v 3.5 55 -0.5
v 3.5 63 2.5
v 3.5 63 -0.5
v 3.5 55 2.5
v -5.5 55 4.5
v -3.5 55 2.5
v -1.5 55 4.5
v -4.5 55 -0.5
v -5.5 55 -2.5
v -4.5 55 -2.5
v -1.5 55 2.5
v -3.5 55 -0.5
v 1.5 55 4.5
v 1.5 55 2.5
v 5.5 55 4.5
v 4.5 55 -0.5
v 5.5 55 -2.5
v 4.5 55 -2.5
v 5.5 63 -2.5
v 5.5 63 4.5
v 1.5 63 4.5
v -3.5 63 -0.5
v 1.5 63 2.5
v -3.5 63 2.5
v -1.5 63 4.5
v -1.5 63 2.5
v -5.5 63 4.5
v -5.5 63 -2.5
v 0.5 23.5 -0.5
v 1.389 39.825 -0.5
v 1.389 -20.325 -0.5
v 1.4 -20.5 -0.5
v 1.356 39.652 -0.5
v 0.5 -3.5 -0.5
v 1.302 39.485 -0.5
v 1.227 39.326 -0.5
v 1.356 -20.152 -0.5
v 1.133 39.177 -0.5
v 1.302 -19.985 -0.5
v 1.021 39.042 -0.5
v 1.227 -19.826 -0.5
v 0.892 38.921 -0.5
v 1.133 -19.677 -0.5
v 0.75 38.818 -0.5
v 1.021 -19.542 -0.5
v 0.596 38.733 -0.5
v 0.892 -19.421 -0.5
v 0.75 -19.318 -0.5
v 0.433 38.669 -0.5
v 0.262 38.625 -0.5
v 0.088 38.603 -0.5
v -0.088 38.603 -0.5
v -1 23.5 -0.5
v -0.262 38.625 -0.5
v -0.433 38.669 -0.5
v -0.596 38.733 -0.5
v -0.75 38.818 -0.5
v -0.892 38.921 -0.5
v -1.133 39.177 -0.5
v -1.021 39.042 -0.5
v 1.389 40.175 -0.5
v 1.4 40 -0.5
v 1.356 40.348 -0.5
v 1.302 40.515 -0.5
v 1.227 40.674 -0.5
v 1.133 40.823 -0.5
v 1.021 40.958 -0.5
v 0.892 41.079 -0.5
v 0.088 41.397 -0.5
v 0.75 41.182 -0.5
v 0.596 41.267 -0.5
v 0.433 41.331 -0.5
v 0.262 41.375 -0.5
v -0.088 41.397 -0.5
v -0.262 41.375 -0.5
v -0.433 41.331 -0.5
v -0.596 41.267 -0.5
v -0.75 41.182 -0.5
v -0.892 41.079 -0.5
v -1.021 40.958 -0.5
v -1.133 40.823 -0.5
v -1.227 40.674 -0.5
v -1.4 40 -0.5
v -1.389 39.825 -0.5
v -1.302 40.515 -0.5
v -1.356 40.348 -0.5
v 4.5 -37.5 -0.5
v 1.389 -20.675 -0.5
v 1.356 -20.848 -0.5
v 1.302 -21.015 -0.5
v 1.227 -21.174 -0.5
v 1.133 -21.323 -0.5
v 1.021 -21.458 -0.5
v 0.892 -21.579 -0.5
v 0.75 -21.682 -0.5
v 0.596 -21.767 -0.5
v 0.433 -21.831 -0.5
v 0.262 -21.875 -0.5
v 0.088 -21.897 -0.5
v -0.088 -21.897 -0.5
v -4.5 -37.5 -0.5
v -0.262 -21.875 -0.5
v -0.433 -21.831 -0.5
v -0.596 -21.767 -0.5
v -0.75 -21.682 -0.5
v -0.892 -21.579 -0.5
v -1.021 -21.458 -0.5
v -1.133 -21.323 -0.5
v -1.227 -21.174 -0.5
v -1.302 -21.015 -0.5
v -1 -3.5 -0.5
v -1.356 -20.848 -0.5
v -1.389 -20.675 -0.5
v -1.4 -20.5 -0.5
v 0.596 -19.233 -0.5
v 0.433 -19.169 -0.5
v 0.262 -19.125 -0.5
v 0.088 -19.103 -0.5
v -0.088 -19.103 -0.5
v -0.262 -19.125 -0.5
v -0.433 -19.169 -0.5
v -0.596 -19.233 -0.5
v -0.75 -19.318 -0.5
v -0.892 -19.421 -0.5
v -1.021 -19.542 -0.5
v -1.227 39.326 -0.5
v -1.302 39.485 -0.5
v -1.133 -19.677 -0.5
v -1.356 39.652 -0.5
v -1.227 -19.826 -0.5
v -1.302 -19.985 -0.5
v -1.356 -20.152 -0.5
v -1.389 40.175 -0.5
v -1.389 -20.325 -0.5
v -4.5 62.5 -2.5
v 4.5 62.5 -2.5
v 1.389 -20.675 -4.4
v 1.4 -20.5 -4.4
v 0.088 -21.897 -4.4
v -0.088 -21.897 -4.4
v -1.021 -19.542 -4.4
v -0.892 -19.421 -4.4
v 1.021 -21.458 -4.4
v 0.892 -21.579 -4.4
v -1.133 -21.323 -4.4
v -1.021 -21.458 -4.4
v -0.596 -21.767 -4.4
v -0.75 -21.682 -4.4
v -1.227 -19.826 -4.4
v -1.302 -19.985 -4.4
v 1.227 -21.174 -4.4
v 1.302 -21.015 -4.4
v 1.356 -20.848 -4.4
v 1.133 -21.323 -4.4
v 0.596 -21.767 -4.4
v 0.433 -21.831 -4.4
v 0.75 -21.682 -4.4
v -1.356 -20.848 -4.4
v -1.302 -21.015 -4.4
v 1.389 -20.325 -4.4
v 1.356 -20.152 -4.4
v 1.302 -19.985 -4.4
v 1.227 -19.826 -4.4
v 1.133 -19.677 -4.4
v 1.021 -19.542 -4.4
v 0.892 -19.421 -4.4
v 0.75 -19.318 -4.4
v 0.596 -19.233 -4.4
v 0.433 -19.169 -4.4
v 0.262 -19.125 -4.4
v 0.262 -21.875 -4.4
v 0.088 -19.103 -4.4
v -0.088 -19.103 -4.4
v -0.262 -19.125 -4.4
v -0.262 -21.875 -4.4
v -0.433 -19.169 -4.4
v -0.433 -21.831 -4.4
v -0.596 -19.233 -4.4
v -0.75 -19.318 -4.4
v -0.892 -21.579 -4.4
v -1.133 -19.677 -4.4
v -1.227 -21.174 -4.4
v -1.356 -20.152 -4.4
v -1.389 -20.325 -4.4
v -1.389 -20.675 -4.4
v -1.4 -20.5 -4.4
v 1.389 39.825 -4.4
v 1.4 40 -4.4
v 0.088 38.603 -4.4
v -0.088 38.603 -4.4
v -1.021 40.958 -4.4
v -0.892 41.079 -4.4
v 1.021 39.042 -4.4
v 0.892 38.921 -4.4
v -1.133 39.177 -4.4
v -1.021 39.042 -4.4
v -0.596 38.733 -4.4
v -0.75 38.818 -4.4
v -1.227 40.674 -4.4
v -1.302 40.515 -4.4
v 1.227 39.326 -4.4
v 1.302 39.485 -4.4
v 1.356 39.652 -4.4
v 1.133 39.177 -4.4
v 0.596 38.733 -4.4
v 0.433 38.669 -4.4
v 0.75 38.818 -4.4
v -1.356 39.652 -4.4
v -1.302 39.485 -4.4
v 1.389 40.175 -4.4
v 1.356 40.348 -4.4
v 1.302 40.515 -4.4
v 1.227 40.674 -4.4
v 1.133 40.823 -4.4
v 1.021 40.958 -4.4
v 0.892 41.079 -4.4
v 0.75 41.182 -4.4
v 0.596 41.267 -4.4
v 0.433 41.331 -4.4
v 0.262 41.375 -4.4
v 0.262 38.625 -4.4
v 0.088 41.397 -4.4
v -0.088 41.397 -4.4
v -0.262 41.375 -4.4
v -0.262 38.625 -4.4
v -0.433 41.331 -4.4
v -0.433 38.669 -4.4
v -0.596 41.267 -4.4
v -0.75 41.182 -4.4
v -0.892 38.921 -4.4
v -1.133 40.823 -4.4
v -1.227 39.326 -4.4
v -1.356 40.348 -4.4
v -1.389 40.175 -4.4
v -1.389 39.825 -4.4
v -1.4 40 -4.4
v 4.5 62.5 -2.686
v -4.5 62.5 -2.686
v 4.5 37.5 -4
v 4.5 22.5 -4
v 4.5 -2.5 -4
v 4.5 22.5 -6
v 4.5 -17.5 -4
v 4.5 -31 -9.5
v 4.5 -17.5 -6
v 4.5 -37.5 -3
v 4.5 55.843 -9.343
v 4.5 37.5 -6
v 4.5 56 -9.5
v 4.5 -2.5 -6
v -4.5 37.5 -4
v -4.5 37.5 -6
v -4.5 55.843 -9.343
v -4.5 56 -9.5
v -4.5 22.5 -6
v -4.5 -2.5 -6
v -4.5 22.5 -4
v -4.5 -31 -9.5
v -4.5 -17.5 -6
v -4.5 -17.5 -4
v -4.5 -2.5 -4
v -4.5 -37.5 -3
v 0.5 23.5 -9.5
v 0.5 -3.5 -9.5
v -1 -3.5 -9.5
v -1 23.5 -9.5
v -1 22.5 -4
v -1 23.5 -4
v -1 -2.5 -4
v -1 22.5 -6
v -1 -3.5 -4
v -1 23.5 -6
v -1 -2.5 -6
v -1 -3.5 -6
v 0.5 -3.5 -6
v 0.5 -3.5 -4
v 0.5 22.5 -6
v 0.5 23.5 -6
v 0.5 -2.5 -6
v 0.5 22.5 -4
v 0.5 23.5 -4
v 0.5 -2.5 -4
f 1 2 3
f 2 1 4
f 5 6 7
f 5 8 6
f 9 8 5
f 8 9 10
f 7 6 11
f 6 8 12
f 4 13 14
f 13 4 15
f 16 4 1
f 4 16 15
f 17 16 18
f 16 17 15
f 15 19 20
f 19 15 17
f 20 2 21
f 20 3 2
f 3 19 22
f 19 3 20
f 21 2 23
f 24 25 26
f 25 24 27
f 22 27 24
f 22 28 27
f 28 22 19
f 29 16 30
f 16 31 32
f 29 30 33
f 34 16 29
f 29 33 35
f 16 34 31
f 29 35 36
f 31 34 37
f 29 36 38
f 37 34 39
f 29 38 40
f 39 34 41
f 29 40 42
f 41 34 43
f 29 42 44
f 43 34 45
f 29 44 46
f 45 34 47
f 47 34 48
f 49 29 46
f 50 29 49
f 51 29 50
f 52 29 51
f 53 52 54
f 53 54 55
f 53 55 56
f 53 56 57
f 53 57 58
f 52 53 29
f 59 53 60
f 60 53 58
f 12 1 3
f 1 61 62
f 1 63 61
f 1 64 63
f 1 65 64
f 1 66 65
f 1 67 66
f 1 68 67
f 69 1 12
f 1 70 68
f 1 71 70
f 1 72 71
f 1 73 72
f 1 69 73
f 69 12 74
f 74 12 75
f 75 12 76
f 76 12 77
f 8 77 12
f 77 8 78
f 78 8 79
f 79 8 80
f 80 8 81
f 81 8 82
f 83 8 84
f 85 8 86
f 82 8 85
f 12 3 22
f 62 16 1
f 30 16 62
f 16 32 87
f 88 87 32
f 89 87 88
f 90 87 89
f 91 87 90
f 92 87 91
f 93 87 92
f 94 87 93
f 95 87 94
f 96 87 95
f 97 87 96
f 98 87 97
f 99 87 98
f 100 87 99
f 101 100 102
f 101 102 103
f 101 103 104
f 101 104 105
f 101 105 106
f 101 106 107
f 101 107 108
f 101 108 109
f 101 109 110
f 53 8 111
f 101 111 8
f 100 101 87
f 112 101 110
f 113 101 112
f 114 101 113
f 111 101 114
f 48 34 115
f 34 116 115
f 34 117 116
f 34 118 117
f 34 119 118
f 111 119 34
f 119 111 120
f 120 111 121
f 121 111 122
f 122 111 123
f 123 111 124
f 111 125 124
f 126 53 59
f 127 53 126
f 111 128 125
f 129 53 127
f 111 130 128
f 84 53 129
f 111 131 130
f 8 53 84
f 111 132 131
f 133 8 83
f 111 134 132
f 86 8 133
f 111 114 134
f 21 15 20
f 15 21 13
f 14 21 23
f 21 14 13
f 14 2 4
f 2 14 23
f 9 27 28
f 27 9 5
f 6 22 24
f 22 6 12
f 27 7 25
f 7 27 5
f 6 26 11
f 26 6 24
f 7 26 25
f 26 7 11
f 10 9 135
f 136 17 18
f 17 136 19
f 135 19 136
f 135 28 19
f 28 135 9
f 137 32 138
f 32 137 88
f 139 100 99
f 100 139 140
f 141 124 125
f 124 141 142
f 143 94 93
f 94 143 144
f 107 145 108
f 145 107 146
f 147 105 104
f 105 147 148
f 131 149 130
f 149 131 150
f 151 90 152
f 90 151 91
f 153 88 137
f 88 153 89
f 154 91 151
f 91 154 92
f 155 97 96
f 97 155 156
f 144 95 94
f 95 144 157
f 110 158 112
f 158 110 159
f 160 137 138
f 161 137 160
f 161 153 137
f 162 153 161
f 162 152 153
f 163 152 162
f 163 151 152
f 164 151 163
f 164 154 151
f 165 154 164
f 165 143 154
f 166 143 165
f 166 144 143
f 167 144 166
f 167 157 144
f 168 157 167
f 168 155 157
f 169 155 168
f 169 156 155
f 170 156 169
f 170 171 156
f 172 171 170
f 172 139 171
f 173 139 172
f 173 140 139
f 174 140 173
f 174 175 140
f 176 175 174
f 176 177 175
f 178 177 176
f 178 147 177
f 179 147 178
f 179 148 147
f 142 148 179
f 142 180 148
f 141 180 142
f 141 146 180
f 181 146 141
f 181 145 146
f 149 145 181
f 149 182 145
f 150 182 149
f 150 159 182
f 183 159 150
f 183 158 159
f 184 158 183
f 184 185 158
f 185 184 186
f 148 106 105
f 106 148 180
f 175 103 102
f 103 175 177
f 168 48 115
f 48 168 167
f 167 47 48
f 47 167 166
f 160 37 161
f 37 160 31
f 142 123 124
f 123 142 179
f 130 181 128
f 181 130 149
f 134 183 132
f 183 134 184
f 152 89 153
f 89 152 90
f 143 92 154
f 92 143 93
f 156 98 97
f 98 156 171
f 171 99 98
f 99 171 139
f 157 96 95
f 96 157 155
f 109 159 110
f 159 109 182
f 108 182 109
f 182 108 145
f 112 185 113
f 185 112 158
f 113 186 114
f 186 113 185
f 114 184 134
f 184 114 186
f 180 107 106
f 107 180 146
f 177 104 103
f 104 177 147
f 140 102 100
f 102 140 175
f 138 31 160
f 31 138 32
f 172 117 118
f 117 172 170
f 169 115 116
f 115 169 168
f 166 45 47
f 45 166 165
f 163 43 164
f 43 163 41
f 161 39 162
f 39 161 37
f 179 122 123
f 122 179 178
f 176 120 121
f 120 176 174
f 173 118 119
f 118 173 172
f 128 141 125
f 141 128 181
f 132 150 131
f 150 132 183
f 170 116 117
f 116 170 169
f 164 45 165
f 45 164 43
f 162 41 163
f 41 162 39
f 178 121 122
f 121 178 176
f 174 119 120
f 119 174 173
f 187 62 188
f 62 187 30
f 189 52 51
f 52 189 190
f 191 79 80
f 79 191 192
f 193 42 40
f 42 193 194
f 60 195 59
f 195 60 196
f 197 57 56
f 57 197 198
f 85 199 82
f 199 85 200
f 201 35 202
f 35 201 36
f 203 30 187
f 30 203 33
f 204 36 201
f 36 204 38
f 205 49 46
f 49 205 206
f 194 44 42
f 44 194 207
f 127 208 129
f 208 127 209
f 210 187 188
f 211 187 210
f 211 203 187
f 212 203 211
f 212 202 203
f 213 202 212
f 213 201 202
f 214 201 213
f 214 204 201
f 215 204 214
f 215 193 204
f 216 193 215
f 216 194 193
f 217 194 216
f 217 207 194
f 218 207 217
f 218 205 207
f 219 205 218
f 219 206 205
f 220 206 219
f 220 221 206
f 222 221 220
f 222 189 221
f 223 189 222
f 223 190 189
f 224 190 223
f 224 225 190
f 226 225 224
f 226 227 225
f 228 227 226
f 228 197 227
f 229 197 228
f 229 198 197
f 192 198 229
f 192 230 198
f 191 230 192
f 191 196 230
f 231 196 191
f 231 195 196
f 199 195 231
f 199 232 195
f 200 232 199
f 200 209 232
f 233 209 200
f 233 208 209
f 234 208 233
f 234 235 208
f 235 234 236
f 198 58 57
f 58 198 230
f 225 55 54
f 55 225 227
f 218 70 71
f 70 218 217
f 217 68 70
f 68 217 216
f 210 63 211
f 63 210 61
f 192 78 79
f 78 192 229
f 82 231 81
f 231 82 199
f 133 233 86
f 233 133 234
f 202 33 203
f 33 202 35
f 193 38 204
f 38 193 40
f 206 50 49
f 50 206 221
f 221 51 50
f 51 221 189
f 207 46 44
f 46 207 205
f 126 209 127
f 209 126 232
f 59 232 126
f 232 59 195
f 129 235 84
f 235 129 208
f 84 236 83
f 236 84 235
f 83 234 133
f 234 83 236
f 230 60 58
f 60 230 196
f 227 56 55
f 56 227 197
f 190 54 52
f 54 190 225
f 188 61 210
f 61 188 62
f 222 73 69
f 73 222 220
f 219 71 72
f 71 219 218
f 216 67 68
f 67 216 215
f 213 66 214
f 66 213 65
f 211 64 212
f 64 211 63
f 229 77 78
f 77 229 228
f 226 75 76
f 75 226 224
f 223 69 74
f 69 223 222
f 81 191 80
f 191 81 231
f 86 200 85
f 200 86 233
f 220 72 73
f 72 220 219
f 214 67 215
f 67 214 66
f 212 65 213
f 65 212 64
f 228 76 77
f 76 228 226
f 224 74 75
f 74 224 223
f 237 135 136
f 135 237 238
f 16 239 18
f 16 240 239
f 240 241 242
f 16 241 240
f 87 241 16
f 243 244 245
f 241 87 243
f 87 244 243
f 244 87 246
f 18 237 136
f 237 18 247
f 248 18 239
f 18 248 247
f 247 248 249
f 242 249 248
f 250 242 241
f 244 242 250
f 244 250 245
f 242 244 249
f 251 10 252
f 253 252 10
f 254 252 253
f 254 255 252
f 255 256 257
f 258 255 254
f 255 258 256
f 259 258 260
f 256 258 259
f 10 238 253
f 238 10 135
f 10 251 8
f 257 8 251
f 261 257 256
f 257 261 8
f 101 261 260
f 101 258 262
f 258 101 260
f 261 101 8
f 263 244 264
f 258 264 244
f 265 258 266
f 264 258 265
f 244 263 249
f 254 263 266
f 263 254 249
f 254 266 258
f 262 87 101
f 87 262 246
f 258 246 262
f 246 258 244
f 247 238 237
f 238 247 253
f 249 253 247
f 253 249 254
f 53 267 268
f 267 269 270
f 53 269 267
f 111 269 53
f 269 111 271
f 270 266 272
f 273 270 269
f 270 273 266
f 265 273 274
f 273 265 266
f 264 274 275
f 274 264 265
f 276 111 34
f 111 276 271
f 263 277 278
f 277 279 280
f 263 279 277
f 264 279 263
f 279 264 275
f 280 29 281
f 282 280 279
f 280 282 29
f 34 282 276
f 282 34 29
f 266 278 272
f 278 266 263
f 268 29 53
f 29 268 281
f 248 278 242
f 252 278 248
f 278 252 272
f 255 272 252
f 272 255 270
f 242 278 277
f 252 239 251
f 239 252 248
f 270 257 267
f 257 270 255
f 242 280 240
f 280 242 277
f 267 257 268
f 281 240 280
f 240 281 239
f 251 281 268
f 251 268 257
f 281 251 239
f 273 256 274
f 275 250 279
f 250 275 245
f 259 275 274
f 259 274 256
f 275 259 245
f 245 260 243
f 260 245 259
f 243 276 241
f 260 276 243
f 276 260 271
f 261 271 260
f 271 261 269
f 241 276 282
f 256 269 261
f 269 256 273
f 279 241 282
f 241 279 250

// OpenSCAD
$fn=50;
BOX_W = 38; // Box Width
BOX_L = 100;// Box Length
BOX_H = 1.0; // Box Height
//SCREW_SIZE = .5; // Screw size in mm
CORNER_RADIUS = 1.0; // Radius of corners
WALL = 1.0;// Wall Thickness

KEEL_WIDTH=9.0;
KEEL_HEIGHT=9.0;
KEEL_LENGTH=100;

VENT_OFFSET = 2.5;
VENT_L = 16.5;
VENT_R = -18.5;
 
difference() {
    union() {
        // keel
        translate([0,62.5,-5])
        rotate([90,0,0])
        difference() {
            linear_extrude(KEEL_LENGTH) square([KEEL_WIDTH, KEEL_HEIGHT], center=true); 
            // front of keel slope
            translate([-5, -5, 93])
            rotate([45, 0, 0])
            cube([10, 11, 8]);  
            
            // back of keel slope
            translate([-5, -10, 1])
            rotate([-45, 0, 0])
            cube([10, 11, 8]); 
            
            //center cutout - vent
            // y, z, x
            translate([-1.0,-6, 39.0])
            rotate([0,0,0])
            //y, z, x
            #cube([1.5, 12, 27]);
            
            // screw holes
            rotate([90,0,0])
            union() {
                // x,y,z
                //translate([0.0, KEEL_LENGTH-35.0, -4.6]) #cylinder(h=4, d=2.8); 
                translate([0.0, KEEL_LENGTH-17.0, -4.6]) cylinder(h=4, d=2.8); 
                translate([0.0, KEEL_LENGTH-77.5, -4.6]) cylinder(h=4, d=2.8);   
            }
            // thru slots for straps
            rotate([90, 0, 0])
            translate([-7.0, 25,-1]) 
            cube([14, 15, 2]);
            rotate([90, 0, 0])
            translate([-7.0, 65,-1]) 
            cube([14, 15, 2]);
            /*
            // convex bottom
            // (x,z,y
            translate([0,-16.4,4]) 
            #cylinder(h=92, d=25);
            */
        }
        // Inverted L-shaped C-clamp
        difference() {
            translate([KEEL_WIDTH/2-3, KEEL_LENGTH-18, -0.5])
            rotate([90, 0, 0])
            union() {
                // Vertical arm of the C-clamp 2
                translate([2.0, 0, 19]) cube([2, 5, 8]);
                // Horizontal arm of the C-clamp
                rotate([90, 0, 0])
                translate([0, 19, -5]) cube([2, 8, 2]);
                // Vertical arm of the C-clamp 1
                translate([-7, 0, 19]) cube([2, 5, 8]);
                // Horizontal arm of the C-clamp
                rotate([90, 0, 0])
                translate([-5.0, 19,-5]) cube([2, 8, 2]);
                // clamp bed
                rotate([90, 0, 0])
                translate([-7.0, 19,-0]) cube([11, 8, 2]);
            }
        }
    }
}
